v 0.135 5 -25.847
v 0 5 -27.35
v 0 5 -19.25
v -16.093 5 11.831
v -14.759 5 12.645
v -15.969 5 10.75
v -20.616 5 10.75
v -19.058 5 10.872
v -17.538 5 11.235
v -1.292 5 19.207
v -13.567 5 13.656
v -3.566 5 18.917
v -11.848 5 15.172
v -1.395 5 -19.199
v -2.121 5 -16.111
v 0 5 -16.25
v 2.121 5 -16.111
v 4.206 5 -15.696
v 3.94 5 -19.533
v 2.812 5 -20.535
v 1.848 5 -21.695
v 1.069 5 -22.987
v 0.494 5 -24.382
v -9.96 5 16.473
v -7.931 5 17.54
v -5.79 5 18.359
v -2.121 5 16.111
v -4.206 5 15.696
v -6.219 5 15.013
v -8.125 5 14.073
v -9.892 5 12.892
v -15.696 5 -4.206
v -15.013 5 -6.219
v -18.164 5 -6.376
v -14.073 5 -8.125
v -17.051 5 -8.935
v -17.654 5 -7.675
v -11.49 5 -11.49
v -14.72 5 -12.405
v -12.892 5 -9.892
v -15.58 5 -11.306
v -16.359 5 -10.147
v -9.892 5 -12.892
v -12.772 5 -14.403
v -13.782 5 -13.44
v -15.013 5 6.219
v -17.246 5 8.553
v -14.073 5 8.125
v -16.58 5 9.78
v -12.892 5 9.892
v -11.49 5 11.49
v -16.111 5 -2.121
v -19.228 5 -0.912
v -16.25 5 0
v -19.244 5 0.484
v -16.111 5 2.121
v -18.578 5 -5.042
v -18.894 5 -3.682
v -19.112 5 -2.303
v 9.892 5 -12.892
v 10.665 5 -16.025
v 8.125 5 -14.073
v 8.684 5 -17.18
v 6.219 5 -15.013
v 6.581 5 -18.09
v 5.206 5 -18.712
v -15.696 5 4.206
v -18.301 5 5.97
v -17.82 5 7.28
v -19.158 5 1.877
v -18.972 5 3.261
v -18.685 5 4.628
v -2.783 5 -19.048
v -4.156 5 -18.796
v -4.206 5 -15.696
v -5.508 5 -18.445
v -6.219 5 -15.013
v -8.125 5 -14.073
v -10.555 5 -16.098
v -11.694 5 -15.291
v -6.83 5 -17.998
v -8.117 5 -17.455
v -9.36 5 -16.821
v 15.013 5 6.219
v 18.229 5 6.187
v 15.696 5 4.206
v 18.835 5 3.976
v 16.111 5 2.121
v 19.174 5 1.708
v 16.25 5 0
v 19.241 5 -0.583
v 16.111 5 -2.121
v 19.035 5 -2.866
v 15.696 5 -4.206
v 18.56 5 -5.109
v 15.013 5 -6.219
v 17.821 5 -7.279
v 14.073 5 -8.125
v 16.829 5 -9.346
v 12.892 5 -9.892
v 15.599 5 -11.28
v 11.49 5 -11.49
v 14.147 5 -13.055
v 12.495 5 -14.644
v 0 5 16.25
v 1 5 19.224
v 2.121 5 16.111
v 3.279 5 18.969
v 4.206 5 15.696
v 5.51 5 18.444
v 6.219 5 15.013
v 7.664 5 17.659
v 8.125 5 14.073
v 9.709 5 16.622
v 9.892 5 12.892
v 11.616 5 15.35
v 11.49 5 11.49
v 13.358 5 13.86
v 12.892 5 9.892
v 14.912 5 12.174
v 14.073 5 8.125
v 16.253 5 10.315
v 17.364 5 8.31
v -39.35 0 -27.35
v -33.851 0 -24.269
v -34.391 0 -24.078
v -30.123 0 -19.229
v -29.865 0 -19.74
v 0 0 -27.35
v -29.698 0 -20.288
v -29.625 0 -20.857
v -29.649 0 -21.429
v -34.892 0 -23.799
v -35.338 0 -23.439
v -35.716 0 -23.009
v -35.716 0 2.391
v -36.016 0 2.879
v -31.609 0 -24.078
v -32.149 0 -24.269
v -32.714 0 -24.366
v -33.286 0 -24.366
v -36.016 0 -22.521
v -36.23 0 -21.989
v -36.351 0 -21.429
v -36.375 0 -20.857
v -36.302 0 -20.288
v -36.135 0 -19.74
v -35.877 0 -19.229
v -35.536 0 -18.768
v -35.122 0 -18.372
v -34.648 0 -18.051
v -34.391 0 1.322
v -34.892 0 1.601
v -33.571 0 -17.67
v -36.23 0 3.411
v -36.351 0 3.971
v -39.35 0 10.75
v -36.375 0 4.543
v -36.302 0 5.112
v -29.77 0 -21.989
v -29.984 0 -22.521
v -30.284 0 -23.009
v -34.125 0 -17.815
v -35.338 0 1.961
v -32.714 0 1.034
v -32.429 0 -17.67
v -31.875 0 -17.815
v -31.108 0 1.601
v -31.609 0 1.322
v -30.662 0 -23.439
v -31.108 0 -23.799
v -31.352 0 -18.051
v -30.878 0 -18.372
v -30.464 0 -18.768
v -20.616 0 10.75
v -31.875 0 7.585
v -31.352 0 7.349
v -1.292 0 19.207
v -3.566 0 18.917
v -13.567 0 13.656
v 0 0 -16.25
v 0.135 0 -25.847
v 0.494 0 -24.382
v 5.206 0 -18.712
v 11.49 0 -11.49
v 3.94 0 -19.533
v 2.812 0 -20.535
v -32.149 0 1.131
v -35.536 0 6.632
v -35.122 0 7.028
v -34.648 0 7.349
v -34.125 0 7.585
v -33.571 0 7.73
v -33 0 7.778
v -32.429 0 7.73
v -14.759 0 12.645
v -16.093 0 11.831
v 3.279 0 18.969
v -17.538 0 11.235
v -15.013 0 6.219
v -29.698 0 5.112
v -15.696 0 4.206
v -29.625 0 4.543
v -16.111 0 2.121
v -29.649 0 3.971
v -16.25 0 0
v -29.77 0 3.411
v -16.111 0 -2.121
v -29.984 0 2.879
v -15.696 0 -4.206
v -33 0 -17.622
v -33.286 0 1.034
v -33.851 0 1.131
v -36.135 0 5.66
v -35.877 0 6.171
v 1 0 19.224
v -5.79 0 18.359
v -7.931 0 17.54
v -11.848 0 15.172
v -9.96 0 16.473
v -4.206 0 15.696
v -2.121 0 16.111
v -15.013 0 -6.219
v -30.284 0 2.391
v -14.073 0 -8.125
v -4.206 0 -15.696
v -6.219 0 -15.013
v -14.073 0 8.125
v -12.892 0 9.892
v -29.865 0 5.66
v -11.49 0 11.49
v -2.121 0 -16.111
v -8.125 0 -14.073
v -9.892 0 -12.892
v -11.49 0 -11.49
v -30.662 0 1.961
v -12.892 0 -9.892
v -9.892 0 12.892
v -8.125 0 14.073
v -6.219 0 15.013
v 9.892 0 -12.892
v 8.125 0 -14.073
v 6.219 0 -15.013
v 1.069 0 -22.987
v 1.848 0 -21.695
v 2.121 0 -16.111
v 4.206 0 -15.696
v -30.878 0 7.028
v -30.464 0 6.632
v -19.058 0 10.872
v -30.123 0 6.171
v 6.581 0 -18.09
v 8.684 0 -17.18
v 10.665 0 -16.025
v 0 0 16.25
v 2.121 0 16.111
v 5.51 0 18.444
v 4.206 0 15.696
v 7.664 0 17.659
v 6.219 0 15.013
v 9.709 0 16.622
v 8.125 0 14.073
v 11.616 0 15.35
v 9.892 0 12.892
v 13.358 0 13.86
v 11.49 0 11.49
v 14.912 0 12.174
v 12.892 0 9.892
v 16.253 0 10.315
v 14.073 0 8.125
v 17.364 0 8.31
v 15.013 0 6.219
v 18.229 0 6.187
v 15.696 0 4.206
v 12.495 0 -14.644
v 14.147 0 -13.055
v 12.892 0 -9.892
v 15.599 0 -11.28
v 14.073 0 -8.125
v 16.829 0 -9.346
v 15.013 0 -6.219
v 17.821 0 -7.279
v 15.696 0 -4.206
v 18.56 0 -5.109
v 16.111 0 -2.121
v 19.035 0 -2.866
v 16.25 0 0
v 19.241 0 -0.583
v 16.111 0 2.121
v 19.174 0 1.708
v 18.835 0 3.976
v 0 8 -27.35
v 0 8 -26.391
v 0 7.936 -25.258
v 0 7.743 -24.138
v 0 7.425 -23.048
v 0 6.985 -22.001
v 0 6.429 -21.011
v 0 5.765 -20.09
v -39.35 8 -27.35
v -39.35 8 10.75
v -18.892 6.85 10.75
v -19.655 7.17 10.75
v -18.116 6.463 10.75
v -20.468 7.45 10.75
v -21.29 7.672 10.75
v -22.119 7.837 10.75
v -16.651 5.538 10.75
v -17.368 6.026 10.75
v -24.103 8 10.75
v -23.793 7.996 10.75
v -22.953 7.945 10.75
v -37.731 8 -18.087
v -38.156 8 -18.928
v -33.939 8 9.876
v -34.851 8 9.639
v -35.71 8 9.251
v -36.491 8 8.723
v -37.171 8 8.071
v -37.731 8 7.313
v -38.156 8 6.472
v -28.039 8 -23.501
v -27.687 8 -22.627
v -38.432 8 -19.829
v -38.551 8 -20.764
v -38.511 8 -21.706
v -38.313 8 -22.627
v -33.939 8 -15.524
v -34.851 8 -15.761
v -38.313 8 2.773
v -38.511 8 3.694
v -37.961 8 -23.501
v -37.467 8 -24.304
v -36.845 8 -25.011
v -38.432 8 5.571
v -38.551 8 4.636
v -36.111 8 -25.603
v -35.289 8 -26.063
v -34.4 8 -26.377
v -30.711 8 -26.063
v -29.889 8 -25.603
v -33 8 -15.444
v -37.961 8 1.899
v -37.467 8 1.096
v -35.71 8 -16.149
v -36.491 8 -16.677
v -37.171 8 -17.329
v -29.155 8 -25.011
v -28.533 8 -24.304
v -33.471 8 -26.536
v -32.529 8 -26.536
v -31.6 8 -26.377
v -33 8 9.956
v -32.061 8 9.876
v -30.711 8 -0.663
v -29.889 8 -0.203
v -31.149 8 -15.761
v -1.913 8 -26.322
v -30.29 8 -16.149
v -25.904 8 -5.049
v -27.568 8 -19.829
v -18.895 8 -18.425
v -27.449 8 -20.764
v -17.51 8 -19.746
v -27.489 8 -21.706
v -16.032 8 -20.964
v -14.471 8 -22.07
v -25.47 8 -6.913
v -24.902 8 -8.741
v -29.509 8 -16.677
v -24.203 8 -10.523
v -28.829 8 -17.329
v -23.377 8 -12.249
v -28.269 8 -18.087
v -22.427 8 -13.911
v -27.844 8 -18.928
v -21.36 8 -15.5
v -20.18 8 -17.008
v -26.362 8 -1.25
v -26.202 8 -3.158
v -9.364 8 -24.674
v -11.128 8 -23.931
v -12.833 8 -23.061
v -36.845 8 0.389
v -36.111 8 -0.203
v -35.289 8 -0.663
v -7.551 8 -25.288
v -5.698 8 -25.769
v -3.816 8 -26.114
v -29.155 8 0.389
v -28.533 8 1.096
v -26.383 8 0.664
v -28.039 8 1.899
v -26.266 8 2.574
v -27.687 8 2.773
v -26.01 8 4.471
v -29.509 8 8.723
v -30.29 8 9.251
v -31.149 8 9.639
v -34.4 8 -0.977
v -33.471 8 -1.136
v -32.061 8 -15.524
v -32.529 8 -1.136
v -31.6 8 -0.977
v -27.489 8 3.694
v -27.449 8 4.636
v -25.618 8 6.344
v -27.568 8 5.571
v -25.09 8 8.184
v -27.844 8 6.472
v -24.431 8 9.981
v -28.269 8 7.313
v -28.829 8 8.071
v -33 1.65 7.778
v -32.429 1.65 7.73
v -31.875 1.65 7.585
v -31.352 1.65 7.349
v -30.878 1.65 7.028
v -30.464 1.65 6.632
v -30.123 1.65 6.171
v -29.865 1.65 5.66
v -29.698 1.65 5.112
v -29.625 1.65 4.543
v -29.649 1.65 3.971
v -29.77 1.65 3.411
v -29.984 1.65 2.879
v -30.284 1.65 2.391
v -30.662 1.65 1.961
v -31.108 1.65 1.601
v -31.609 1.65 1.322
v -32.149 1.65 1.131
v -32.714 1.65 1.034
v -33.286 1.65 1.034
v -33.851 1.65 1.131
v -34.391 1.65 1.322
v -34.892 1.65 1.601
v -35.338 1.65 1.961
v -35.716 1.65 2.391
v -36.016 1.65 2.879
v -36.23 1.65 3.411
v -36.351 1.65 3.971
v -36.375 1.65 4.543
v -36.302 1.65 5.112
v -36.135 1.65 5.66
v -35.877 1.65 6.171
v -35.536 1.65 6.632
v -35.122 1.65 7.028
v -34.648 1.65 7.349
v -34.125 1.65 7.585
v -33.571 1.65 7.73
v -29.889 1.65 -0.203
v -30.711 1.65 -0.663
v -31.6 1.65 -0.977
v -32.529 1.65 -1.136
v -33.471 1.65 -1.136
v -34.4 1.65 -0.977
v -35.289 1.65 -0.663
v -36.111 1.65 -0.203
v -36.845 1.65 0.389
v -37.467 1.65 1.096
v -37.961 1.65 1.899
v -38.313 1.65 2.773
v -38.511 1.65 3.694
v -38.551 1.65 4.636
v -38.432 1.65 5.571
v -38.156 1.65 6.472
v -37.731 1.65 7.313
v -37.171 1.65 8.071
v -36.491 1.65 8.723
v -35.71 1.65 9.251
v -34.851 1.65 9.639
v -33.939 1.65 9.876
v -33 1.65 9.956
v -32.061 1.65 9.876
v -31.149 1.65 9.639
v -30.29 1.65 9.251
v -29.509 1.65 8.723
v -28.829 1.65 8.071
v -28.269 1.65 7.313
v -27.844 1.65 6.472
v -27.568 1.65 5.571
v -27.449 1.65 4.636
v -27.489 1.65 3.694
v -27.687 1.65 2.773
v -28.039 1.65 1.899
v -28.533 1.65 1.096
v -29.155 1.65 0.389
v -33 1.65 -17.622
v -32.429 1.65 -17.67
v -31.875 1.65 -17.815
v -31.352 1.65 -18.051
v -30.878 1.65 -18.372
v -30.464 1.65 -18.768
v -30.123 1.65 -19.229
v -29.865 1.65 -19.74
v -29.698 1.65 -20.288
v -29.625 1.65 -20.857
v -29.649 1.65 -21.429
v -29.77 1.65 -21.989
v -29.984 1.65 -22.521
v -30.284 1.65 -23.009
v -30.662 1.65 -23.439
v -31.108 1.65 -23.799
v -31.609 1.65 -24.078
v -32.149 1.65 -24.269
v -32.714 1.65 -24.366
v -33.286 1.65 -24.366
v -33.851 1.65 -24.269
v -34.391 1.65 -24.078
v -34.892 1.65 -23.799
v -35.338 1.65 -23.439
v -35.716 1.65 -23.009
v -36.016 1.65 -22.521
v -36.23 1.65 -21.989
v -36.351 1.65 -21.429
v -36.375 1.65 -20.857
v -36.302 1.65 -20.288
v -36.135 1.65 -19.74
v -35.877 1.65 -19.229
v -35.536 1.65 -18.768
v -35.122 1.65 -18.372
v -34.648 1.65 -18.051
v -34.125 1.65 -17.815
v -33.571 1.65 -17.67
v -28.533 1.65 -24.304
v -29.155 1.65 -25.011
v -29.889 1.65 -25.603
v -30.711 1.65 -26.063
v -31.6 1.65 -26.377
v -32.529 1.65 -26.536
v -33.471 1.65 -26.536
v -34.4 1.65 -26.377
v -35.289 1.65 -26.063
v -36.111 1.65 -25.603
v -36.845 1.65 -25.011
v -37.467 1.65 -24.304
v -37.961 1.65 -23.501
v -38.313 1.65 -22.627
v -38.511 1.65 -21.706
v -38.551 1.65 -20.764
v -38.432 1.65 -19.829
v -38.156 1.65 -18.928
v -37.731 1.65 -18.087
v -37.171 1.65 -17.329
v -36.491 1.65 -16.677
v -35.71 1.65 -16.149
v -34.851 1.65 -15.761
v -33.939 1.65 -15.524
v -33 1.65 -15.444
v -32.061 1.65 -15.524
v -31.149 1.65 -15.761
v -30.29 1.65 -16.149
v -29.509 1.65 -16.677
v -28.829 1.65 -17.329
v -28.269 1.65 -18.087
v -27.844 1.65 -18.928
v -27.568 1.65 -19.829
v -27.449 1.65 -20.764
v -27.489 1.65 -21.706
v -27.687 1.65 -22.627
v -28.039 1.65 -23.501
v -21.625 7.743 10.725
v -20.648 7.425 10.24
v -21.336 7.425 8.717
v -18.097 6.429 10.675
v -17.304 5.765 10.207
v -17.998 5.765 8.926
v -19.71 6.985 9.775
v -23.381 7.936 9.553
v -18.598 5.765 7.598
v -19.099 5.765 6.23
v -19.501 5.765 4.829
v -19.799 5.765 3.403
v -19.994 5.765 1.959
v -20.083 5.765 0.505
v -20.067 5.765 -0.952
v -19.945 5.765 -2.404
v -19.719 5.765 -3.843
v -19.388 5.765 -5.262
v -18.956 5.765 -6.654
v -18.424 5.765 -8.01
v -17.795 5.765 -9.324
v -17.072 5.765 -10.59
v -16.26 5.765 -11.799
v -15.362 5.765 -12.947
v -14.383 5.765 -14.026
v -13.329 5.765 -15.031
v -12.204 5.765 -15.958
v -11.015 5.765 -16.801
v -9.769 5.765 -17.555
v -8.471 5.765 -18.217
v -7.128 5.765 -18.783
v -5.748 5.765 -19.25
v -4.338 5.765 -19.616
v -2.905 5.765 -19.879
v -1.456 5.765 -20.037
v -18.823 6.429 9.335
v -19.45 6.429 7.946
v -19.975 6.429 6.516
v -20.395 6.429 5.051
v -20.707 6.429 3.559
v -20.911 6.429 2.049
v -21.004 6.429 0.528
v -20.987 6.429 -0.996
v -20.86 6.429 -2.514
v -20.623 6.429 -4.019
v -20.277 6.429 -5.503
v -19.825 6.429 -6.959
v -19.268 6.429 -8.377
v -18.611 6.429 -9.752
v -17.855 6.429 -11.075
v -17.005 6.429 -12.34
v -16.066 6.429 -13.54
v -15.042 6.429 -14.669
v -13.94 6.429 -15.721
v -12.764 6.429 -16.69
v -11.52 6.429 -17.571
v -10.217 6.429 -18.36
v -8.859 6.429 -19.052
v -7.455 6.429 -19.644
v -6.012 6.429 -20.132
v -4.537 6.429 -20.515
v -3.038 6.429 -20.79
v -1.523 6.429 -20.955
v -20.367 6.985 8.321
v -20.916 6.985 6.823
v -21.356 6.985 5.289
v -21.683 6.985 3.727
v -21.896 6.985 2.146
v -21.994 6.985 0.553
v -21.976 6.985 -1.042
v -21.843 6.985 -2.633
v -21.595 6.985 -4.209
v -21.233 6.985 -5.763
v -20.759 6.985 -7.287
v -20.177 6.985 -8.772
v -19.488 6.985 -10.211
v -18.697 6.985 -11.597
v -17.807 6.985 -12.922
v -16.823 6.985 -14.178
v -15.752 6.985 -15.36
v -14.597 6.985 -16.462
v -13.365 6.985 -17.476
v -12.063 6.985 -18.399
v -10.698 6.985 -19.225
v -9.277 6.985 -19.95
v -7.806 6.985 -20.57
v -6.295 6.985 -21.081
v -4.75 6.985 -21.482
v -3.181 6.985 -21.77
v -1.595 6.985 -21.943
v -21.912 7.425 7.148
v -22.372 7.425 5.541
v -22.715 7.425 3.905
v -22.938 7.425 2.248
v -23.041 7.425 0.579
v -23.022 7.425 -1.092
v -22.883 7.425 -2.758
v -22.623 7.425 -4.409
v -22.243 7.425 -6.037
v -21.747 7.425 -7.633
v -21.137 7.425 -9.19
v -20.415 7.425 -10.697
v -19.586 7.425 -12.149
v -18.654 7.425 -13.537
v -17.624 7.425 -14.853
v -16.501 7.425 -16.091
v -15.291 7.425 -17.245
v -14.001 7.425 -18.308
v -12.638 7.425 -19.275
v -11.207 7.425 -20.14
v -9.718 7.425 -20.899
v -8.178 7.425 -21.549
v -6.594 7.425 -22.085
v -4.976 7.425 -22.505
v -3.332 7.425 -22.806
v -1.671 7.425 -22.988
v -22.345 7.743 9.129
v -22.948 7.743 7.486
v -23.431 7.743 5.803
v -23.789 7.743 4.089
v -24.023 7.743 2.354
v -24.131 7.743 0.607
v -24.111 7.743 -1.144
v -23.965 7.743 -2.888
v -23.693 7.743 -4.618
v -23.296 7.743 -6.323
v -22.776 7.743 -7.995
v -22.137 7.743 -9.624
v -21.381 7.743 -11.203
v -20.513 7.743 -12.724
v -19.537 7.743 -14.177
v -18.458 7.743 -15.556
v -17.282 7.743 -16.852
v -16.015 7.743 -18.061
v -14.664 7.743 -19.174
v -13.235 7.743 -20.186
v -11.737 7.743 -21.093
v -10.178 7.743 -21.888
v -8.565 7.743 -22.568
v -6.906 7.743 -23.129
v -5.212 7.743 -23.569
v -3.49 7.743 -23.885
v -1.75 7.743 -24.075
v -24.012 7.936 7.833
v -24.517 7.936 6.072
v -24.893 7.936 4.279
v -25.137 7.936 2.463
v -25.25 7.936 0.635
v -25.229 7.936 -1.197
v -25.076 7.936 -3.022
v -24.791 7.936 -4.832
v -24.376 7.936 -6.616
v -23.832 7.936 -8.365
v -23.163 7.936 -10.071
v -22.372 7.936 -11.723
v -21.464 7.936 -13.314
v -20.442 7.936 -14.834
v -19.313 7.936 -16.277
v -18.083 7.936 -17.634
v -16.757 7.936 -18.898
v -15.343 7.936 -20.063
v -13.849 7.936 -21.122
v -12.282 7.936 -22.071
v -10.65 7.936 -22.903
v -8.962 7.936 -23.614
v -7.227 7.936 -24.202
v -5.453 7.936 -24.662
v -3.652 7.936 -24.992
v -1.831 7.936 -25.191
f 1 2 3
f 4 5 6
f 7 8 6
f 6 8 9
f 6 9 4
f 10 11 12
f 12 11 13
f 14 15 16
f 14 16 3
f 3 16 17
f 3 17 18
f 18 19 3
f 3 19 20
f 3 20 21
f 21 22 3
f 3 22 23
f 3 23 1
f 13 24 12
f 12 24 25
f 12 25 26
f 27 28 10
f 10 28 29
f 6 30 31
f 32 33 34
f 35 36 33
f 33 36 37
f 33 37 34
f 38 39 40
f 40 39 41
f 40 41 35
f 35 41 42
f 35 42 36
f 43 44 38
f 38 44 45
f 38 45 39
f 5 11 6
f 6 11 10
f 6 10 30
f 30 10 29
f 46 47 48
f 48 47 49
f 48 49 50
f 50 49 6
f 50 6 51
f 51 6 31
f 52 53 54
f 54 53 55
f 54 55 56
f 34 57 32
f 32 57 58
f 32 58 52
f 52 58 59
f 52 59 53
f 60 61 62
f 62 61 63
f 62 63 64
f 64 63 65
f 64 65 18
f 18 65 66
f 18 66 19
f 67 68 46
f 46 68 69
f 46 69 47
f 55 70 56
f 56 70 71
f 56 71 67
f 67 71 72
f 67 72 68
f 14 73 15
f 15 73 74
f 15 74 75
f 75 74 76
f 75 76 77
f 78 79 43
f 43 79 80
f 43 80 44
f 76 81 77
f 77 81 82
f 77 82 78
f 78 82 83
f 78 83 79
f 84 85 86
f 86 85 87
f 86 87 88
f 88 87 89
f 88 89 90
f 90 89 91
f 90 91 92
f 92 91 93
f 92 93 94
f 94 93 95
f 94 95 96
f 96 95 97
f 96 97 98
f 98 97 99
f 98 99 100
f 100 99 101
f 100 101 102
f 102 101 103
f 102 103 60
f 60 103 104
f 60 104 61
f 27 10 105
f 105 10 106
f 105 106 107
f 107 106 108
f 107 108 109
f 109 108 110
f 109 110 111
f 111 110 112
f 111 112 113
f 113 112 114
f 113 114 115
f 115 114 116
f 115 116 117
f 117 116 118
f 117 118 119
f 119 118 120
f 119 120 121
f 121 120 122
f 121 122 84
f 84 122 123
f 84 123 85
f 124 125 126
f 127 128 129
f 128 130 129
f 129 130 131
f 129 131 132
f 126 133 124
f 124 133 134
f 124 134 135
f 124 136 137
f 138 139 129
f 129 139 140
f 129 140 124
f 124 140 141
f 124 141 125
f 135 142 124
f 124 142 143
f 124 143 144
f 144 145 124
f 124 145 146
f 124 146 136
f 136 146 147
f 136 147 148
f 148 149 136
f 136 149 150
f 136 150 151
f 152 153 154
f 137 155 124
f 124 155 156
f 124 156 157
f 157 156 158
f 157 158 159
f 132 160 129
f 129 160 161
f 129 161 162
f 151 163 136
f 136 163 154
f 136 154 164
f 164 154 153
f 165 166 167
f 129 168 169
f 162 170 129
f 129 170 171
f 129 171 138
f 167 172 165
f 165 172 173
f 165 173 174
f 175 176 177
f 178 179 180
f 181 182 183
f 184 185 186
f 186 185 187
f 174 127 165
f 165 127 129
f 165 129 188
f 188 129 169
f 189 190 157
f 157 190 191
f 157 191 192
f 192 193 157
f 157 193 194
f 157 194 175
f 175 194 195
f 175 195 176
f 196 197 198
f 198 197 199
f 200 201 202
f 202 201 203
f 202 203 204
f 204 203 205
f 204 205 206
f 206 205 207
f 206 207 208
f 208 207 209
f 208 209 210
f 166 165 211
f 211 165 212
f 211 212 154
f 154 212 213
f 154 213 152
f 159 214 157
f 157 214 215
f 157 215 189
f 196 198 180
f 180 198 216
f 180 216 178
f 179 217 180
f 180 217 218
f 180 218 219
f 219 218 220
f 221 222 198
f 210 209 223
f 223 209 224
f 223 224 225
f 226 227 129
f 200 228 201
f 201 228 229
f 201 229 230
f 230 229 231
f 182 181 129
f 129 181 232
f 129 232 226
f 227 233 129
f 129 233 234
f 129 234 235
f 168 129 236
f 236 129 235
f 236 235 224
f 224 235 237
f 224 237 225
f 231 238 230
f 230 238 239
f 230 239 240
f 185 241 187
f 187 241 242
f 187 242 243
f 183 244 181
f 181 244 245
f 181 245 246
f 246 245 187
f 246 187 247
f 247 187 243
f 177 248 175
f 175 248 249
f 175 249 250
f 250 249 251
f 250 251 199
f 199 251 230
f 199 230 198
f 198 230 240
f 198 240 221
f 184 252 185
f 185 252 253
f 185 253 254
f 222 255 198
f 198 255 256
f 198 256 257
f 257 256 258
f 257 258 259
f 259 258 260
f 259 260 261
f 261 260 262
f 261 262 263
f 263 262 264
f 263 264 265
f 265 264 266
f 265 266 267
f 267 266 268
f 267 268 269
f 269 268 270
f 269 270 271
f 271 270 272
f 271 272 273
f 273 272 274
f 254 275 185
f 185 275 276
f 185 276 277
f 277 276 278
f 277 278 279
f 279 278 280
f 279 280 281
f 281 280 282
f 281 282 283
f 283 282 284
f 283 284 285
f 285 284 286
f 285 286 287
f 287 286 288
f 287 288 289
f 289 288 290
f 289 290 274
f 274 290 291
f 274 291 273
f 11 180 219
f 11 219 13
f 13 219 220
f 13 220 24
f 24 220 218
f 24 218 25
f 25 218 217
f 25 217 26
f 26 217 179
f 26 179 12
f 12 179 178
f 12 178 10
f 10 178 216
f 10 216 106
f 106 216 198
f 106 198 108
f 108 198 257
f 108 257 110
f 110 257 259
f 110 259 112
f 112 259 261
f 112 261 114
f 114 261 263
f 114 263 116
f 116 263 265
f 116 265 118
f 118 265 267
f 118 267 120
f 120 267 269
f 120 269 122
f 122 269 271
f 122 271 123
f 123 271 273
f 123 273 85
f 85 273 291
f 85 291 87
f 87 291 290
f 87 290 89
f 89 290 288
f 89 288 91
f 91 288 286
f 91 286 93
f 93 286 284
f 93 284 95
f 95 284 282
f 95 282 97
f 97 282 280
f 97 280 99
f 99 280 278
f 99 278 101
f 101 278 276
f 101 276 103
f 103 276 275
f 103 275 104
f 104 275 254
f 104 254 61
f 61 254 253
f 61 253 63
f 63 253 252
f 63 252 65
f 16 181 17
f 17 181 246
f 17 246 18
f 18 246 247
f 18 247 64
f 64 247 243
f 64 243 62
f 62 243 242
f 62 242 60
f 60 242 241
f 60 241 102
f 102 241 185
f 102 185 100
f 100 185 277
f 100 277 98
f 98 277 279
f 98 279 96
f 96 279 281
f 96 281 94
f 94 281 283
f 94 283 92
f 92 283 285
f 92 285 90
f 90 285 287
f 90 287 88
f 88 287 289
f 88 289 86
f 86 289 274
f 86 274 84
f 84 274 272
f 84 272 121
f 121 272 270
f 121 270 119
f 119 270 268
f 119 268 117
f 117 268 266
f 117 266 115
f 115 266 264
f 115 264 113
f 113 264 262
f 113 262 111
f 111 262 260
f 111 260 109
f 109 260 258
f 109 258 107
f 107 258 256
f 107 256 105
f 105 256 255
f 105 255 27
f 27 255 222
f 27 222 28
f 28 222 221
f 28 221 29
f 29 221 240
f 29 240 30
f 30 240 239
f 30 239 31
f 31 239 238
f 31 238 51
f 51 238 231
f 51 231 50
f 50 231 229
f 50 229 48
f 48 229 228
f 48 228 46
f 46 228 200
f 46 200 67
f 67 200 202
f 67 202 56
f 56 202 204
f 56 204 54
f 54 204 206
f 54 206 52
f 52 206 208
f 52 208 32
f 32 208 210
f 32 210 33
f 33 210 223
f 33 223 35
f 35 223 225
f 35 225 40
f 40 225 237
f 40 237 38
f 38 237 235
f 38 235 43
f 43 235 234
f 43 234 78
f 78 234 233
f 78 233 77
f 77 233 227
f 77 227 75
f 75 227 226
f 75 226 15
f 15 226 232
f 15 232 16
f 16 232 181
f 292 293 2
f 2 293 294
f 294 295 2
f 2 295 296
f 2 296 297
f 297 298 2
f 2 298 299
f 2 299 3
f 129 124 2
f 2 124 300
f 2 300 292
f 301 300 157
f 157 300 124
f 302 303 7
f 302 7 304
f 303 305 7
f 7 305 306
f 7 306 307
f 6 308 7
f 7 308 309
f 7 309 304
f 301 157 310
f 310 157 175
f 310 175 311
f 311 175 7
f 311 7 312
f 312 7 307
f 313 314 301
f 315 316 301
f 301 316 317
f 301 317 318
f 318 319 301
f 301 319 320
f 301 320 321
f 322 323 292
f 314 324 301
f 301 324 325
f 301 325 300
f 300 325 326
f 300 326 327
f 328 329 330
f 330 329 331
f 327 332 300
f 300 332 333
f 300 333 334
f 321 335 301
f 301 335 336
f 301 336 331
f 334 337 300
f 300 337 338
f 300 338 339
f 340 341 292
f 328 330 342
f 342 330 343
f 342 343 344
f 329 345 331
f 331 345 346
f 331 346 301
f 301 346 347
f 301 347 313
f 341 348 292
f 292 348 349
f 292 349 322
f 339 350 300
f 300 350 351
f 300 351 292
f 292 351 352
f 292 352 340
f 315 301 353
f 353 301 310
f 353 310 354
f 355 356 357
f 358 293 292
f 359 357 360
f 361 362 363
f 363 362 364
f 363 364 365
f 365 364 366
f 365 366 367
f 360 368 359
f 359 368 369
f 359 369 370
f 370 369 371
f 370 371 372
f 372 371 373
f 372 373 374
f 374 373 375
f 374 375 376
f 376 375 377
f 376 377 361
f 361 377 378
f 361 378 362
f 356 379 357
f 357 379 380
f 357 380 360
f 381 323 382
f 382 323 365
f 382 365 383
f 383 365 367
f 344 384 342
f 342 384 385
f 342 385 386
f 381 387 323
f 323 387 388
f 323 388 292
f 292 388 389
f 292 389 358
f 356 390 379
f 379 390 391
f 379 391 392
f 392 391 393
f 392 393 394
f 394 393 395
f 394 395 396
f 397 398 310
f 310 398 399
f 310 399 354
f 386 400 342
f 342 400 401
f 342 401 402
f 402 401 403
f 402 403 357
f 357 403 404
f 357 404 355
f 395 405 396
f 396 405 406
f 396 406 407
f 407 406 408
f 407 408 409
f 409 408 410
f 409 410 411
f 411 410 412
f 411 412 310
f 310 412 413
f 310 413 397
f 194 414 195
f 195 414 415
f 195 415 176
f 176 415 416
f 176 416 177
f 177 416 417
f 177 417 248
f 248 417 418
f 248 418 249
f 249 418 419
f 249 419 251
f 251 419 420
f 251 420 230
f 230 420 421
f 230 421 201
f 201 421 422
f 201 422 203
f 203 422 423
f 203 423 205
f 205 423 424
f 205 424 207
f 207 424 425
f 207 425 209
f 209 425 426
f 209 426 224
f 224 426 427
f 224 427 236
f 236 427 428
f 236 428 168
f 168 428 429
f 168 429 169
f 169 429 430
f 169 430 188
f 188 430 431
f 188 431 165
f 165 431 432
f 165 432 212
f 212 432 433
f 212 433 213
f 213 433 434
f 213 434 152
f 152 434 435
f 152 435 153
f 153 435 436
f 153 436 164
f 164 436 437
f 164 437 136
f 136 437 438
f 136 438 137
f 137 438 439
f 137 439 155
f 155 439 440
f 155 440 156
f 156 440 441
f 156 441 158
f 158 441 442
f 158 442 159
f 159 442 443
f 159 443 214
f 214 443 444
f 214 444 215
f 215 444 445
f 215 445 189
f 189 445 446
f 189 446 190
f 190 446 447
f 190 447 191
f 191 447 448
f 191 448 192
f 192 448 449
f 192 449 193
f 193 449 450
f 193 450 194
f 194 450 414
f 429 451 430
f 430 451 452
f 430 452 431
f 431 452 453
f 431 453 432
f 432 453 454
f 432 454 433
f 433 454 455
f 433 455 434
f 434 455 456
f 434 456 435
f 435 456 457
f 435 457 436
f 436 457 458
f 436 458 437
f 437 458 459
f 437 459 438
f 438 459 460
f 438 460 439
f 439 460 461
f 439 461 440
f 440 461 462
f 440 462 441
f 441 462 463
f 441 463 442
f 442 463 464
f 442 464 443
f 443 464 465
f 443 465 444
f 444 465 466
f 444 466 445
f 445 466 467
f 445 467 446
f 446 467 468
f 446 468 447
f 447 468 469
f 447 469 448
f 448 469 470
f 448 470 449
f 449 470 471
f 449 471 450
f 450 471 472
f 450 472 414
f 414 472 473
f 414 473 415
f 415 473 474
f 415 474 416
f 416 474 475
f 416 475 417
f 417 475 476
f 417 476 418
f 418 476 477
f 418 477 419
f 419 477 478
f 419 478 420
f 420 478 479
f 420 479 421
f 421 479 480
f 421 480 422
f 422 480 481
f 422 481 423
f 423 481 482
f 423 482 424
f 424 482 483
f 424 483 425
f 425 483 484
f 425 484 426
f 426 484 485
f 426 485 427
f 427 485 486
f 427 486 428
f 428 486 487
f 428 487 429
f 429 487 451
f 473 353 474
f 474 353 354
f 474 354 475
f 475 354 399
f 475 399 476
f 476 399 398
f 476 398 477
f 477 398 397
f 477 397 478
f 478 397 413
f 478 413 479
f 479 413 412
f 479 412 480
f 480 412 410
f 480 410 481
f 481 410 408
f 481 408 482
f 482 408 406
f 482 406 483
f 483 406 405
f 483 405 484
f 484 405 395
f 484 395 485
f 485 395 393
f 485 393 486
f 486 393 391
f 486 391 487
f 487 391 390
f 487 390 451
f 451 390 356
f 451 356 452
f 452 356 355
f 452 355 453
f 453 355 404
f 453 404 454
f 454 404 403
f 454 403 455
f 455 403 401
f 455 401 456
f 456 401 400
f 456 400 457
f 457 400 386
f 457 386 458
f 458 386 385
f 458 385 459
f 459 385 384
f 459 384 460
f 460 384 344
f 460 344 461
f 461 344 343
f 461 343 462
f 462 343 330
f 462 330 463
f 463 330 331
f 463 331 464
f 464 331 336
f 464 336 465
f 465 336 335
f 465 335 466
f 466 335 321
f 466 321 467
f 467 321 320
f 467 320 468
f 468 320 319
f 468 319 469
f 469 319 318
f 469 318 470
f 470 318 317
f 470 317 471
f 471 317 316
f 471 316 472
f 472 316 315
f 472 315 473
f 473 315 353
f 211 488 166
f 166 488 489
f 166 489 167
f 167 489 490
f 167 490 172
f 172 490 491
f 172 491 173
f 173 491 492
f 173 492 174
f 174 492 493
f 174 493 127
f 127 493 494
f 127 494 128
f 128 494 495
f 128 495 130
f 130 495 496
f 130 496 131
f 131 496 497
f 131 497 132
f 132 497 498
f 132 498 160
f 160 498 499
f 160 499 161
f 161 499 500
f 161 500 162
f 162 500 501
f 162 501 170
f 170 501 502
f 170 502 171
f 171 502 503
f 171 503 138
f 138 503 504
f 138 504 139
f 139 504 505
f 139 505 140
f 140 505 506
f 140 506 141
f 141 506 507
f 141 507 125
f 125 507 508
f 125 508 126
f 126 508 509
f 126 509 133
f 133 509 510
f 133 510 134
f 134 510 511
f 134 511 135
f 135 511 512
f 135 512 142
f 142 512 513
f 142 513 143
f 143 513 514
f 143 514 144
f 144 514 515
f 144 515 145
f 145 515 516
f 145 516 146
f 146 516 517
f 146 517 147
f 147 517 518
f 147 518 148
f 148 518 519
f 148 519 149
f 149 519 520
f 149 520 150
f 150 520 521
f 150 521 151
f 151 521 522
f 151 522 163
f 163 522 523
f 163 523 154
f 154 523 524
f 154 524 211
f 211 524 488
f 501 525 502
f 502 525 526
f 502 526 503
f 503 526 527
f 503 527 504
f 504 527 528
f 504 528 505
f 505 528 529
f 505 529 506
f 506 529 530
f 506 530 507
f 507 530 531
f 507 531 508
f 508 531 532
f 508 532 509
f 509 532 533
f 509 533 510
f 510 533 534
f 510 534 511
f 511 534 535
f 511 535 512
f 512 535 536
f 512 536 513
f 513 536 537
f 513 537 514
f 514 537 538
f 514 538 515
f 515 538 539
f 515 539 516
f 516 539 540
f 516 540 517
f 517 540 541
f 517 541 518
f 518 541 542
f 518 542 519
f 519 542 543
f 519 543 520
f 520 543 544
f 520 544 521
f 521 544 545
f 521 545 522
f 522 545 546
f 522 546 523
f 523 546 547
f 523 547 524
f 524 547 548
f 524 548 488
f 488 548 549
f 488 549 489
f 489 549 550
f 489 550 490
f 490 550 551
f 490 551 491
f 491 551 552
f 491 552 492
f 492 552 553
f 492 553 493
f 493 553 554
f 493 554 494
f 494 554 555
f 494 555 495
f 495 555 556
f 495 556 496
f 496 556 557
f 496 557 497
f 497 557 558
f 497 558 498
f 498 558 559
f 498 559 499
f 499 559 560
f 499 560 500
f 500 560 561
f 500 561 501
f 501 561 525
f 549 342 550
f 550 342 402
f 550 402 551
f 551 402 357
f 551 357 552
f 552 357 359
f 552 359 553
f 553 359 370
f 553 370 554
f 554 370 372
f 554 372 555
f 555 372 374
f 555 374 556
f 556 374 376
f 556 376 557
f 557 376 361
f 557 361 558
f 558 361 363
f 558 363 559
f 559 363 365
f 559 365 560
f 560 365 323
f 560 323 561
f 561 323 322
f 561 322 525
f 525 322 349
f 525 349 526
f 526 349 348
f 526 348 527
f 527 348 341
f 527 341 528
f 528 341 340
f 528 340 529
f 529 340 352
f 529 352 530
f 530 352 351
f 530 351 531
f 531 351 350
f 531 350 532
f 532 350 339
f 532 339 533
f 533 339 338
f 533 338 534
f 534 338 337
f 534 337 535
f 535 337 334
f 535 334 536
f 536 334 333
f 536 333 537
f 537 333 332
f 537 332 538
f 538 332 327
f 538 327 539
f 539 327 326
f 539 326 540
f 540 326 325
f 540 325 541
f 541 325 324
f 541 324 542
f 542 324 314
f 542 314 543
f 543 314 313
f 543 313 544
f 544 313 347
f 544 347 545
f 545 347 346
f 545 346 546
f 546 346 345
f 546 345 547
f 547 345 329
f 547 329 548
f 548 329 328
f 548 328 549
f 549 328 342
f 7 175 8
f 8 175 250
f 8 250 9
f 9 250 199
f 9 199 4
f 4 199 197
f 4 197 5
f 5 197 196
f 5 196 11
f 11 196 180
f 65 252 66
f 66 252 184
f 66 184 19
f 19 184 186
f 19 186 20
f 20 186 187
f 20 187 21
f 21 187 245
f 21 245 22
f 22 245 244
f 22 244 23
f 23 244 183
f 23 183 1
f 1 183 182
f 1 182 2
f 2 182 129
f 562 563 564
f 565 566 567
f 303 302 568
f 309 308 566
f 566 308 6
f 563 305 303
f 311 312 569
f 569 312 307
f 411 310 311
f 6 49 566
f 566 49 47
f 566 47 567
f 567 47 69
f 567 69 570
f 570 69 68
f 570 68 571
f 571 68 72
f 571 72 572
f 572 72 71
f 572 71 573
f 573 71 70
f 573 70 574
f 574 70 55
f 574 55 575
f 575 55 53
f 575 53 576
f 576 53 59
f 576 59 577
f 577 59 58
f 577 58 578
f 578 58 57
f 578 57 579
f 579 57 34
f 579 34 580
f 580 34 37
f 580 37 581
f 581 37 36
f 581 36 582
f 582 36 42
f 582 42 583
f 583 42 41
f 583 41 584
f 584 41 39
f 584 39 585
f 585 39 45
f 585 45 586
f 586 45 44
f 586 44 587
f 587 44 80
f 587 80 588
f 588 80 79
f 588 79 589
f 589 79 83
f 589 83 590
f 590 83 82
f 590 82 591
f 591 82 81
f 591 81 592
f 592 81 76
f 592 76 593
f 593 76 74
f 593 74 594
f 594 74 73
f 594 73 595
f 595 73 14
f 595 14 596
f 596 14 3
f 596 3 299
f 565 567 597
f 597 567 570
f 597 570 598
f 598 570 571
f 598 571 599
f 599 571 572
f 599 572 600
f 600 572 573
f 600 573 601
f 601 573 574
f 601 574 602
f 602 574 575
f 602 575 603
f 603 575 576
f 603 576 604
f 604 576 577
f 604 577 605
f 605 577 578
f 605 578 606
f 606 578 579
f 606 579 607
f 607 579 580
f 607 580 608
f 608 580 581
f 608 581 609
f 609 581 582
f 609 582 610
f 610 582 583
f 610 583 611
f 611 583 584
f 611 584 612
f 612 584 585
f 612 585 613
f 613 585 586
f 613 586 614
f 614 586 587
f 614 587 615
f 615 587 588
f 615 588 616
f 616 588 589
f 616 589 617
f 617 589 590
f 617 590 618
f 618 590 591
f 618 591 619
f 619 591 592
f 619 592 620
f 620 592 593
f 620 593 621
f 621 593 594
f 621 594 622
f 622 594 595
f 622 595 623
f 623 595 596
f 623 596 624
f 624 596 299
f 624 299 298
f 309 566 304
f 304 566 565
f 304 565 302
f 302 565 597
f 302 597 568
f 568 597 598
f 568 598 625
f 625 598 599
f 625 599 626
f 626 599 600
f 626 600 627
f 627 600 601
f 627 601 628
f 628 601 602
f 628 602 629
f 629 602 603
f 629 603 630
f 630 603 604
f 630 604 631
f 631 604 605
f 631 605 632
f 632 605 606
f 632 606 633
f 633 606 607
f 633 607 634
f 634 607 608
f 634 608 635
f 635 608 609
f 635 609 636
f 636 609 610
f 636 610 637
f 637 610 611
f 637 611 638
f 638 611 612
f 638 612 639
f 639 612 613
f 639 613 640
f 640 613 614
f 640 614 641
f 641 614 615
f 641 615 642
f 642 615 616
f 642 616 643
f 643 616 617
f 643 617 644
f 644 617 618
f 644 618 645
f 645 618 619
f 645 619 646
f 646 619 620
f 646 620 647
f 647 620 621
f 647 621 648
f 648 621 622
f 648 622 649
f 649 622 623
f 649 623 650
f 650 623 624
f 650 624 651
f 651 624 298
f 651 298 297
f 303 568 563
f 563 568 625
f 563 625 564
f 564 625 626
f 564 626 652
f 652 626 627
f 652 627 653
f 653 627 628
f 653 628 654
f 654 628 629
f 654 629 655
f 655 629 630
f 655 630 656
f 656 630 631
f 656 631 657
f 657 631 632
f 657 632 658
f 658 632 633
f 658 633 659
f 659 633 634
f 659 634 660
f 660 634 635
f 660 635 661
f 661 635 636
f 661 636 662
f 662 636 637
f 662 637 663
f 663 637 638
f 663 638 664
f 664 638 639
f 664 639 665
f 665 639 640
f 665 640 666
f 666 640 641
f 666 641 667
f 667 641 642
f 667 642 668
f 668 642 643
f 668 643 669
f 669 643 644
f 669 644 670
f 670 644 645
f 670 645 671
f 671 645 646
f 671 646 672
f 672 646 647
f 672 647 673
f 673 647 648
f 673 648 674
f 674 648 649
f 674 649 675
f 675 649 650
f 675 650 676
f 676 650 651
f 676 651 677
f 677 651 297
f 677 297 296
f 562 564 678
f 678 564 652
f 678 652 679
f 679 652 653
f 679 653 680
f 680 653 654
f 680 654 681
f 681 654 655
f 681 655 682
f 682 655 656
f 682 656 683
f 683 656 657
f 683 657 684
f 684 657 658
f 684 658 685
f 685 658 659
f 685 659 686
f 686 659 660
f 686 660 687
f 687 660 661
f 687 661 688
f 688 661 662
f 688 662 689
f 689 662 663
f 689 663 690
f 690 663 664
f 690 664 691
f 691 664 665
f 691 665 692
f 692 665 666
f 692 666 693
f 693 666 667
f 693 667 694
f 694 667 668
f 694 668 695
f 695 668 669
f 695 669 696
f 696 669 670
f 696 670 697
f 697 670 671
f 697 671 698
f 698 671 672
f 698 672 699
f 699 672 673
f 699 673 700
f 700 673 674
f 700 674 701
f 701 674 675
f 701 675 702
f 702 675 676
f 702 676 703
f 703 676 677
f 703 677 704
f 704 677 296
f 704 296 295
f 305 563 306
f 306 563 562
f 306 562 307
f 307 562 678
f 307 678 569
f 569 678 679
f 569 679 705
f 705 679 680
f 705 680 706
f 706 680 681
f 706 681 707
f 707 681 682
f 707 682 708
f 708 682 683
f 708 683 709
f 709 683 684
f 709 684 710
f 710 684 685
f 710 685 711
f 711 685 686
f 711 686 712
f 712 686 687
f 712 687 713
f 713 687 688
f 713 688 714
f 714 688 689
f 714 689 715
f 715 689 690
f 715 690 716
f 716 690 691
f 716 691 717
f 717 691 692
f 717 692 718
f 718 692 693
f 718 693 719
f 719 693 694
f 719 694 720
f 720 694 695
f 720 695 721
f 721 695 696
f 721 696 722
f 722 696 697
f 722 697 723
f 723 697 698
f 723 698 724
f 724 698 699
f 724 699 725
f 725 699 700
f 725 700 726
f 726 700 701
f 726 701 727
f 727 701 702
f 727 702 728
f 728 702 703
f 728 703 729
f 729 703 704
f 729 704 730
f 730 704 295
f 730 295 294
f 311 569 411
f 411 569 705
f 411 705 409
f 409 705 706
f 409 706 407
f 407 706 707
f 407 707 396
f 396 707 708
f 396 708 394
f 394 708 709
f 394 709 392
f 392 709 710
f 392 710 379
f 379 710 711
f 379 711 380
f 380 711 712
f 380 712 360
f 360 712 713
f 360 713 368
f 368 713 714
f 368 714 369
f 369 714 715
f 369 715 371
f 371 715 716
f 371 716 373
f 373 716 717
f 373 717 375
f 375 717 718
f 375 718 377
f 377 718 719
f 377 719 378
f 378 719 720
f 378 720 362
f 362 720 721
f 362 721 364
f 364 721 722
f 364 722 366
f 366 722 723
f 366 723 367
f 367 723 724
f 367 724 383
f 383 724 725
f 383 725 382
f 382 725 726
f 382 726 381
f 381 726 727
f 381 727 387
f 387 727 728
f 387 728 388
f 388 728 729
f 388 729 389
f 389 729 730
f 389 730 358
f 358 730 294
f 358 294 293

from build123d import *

# Parameters (mm, degrees)
SKETCH1_R                                        = 19.25
SKETCH1_R_2                                      = 16.25
BOSS_EXTRUDE1_DEPTH                              = 5
BOSS_EXTRUDE2_DEPTH                              = 8
CBORE_FOR_1_4_SOCKET_HEAD_CAP_SCREW1_D           = 6.7564
CBORE_FOR_1_4_SOCKET_HEAD_CAP_SCREW1_CBORE_D     = 11.1125
CBORE_FOR_1_4_SOCKET_HEAD_CAP_SCREW1_CBORE_DEPTH = 6.35
FILLET1_R                                        = 10


with BuildPart() as part:
    # Sketch1 → Boss-Extrude1 (new body)
    with BuildSketch(Plane(origin=(0, 0, 0), x_dir=(1, 0, 0), z_dir=(0, 1, 0))):
        with Locations(Location((0, 0, 0), (0, 0, 270))):
            Circle(SKETCH1_R)
        with Locations(Location((0, 0, 0), (0, 0, 270))):
            Circle(SKETCH1_R_2, mode=Mode.SUBTRACT)
    extrude(amount=BOSS_EXTRUDE1_DEPTH)

    # Sketch2 → Boss-Extrude2 (add)
    with BuildSketch(Plane(origin=(0, 0, 0), x_dir=(1, 0, 0), z_dir=(0, 1, 0))):
        with BuildLine():
            Line((0, 27.35), (-39.35, 27.35))
            Line((-39.35, 27.35), (-39.35, -10.75))
            Line((-39.35, -10.75), (-15.968719423, -10.75))
            ThreePointArc((-15.968719423, -10.75), (-16.992645468, 9.045026258), (0, 19.25))
            Line((0, 19.25), (0, 27.35))
        make_face()
    extrude(amount=BOSS_EXTRUDE2_DEPTH)

    # CBORE for 1/4 Socket Head Cap Screw1 (through all)
    with Locations(Plane(origin=(0, 8, 0), x_dir=(1, 0, 0), z_dir=(0, 1, 0))):
        with Locations((-33, 21), (-33, -4.4)):
            CounterBoreHole(CBORE_FOR_1_4_SOCKET_HEAD_CAP_SCREW1_D / 2, CBORE_FOR_1_4_SOCKET_HEAD_CAP_SCREW1_CBORE_D / 2, CBORE_FOR_1_4_SOCKET_HEAD_CAP_SCREW1_CBORE_DEPTH)

    # Fillet1
    # the kernel refuses this fillet: 10 mm, written as the material it adds along each edge
    with BuildSketch(Plane(origin=(-15.968719423, 0, 10.75), x_dir=(0.6369824352168134, 0, 0.7708783154462564), z_dir=(0, 1, 0))) as fillet1_piece_1:
        with BuildLine():
            CenterArc((4.748847629, -9.951948419), FILLET1_R, 95.619084045, 44.81374241)
            Line((-2.959935525, -3.582124067), (0, 0))
            ThreePointArc((0, 0), (1.884851894, -0.092499293), (3.769703788, 0))
        make_face()
    extrude(amount=5)
    with BuildSketch(Plane(origin=(0, 0, -19.25), x_dir=(0.984823666621771, 0, 0.1735579029075042), z_dir=(0, 1, 0))) as fillet1_piece_2:
        with BuildLine():
            CenterArc((8.417558291, 9.848236666), FILLET1_R, 190.784553847, 69.220698266)
            Line((-1.405819014, 7.9770717), (0, 0))
            ThreePointArc((0, 0), (3.340989631, 0.292144418), (6.681979262, 0))
        make_face()
    extrude(amount=5)
    # the kernel refuses this fillet: 10 mm, written as the material it takes off along each edge
    with BuildSketch(Plane(origin=(0, 8, 0), x_dir=(-0.05010434447284765, 0, 0.998743988550092), z_dir=(0.998743988550092, 0, 0.05010434447284765))) as fillet1_2_piece_1:
        with BuildLine():
            CenterArc((26.391428429, 10), FILLET1_R, 224.427004001, 45.572995999)
            Line((26.391428429, 0), (19.25, 0))
            Line((19.25, 0), (19.25, 3))
        make_face()
    revolve(axis=Axis((0, 8, 0), (0, -1, 0)), revolution_arc=230.307970534, mode=Mode.SUBTRACT)


solid = part.part
